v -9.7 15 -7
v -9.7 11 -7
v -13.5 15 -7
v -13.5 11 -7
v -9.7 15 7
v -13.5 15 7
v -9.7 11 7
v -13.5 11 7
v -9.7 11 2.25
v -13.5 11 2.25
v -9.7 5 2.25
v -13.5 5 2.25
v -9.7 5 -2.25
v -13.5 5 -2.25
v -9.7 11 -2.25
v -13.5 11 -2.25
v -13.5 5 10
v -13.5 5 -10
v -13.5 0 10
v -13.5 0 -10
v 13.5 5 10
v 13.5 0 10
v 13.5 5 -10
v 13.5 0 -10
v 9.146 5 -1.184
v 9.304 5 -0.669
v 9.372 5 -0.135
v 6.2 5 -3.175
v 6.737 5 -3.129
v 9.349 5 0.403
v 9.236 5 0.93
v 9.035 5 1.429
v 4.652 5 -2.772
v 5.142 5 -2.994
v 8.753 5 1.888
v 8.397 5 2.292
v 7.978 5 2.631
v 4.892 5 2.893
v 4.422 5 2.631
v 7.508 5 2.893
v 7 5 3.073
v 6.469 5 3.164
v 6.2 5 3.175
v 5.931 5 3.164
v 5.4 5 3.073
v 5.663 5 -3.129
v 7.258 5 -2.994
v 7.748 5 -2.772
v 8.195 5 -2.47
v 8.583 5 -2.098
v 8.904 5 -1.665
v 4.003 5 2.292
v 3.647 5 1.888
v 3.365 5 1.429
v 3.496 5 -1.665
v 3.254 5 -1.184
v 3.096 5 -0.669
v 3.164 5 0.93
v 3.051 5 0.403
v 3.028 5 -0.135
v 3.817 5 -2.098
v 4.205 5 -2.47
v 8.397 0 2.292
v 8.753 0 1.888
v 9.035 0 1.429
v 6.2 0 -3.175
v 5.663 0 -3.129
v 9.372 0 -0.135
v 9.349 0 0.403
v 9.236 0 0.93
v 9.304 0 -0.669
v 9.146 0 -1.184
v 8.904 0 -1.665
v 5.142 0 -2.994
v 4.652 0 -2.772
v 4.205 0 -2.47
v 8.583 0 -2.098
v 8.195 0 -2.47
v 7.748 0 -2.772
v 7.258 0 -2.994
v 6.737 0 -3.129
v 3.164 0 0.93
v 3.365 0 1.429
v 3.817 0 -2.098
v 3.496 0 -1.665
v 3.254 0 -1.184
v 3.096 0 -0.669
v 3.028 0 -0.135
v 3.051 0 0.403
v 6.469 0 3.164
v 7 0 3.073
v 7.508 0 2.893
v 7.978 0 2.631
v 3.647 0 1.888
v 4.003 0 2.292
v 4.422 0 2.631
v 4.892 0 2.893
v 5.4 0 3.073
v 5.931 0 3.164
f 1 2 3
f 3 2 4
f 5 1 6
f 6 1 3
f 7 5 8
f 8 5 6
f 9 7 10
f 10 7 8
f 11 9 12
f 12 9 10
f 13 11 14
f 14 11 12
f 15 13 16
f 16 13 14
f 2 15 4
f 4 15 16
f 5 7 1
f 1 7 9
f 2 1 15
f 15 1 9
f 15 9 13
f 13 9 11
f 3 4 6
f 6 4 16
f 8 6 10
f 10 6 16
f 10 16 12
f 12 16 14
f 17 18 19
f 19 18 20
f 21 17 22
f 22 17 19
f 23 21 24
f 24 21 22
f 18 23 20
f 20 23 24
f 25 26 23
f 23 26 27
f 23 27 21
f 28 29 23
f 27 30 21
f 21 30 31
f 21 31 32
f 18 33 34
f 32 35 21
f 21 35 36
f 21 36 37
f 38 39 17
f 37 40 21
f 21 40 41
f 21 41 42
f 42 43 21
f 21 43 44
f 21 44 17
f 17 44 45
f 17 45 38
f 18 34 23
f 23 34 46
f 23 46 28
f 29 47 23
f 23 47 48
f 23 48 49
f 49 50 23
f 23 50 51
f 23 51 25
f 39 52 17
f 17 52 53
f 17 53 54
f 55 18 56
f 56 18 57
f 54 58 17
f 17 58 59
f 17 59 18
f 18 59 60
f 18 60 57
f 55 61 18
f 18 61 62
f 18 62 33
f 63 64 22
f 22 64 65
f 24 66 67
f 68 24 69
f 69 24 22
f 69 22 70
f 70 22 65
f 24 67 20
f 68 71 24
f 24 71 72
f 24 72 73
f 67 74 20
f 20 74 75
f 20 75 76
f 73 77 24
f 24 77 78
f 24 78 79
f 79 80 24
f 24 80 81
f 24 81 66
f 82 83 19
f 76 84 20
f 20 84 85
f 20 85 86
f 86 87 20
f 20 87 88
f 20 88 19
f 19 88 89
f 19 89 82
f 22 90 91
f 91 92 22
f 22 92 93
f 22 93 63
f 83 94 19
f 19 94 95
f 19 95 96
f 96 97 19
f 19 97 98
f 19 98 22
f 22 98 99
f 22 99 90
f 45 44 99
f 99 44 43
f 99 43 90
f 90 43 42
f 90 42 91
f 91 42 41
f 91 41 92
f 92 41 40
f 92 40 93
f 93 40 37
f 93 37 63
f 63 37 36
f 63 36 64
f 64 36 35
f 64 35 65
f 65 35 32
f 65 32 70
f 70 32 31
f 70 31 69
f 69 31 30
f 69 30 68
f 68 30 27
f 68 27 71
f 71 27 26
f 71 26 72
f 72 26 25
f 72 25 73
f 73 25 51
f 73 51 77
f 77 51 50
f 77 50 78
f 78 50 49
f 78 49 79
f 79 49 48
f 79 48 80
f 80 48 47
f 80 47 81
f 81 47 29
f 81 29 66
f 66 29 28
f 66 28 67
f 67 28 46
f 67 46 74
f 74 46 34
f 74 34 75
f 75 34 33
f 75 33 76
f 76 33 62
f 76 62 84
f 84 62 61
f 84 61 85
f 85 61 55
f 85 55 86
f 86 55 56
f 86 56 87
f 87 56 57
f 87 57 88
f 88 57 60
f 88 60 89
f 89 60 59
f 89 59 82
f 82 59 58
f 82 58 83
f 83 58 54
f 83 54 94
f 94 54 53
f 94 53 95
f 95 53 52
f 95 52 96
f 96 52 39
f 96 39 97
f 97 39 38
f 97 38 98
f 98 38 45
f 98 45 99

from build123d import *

# Parameters (mm, degrees)
SKETCH1_W           = 27
SKETCH1_H           = 20
BOSS_EXTRUDE1_DEPTH = 5
BOSS_EXTRUDE2_DEPTH = 3.8
SKETCH3_R           = 3.175
CUT_EXTRUDE1_DEPTH  = 10


with BuildPart() as part:
    # Sketch1 → Boss-Extrude1 (new body)
    with BuildSketch(Plane(origin=(0, 0, 0), x_dir=(1, 0, 0), z_dir=(0, 1, 0))):
        Rectangle(SKETCH1_W, SKETCH1_H)
    extrude(amount=BOSS_EXTRUDE1_DEPTH)

    # Sketch3 → Cut-Extrude1 (cut)
    with BuildSketch(Plane.XZ):
        with Locations(Location((6.2, 0, 0), (0, 0, 270))):
            Circle(SKETCH3_R)
    extrude(amount=-CUT_EXTRUDE1_DEPTH, mode=Mode.SUBTRACT)


with BuildPart() as body_2:
    # Sketch2 → Boss-Extrude2 (new body)
    with BuildSketch(Plane.ZY.offset(13.5)):
        Polygon((2.25, 5), (-2.25, 5), (-2.25, 11), (-7, 11), (-7, 15), (7, 15), (7, 11), (2.25, 11), align=None)
    extrude(amount=-BOSS_EXTRUDE2_DEPTH)


solid = Compound([part.part, body_2.part])
